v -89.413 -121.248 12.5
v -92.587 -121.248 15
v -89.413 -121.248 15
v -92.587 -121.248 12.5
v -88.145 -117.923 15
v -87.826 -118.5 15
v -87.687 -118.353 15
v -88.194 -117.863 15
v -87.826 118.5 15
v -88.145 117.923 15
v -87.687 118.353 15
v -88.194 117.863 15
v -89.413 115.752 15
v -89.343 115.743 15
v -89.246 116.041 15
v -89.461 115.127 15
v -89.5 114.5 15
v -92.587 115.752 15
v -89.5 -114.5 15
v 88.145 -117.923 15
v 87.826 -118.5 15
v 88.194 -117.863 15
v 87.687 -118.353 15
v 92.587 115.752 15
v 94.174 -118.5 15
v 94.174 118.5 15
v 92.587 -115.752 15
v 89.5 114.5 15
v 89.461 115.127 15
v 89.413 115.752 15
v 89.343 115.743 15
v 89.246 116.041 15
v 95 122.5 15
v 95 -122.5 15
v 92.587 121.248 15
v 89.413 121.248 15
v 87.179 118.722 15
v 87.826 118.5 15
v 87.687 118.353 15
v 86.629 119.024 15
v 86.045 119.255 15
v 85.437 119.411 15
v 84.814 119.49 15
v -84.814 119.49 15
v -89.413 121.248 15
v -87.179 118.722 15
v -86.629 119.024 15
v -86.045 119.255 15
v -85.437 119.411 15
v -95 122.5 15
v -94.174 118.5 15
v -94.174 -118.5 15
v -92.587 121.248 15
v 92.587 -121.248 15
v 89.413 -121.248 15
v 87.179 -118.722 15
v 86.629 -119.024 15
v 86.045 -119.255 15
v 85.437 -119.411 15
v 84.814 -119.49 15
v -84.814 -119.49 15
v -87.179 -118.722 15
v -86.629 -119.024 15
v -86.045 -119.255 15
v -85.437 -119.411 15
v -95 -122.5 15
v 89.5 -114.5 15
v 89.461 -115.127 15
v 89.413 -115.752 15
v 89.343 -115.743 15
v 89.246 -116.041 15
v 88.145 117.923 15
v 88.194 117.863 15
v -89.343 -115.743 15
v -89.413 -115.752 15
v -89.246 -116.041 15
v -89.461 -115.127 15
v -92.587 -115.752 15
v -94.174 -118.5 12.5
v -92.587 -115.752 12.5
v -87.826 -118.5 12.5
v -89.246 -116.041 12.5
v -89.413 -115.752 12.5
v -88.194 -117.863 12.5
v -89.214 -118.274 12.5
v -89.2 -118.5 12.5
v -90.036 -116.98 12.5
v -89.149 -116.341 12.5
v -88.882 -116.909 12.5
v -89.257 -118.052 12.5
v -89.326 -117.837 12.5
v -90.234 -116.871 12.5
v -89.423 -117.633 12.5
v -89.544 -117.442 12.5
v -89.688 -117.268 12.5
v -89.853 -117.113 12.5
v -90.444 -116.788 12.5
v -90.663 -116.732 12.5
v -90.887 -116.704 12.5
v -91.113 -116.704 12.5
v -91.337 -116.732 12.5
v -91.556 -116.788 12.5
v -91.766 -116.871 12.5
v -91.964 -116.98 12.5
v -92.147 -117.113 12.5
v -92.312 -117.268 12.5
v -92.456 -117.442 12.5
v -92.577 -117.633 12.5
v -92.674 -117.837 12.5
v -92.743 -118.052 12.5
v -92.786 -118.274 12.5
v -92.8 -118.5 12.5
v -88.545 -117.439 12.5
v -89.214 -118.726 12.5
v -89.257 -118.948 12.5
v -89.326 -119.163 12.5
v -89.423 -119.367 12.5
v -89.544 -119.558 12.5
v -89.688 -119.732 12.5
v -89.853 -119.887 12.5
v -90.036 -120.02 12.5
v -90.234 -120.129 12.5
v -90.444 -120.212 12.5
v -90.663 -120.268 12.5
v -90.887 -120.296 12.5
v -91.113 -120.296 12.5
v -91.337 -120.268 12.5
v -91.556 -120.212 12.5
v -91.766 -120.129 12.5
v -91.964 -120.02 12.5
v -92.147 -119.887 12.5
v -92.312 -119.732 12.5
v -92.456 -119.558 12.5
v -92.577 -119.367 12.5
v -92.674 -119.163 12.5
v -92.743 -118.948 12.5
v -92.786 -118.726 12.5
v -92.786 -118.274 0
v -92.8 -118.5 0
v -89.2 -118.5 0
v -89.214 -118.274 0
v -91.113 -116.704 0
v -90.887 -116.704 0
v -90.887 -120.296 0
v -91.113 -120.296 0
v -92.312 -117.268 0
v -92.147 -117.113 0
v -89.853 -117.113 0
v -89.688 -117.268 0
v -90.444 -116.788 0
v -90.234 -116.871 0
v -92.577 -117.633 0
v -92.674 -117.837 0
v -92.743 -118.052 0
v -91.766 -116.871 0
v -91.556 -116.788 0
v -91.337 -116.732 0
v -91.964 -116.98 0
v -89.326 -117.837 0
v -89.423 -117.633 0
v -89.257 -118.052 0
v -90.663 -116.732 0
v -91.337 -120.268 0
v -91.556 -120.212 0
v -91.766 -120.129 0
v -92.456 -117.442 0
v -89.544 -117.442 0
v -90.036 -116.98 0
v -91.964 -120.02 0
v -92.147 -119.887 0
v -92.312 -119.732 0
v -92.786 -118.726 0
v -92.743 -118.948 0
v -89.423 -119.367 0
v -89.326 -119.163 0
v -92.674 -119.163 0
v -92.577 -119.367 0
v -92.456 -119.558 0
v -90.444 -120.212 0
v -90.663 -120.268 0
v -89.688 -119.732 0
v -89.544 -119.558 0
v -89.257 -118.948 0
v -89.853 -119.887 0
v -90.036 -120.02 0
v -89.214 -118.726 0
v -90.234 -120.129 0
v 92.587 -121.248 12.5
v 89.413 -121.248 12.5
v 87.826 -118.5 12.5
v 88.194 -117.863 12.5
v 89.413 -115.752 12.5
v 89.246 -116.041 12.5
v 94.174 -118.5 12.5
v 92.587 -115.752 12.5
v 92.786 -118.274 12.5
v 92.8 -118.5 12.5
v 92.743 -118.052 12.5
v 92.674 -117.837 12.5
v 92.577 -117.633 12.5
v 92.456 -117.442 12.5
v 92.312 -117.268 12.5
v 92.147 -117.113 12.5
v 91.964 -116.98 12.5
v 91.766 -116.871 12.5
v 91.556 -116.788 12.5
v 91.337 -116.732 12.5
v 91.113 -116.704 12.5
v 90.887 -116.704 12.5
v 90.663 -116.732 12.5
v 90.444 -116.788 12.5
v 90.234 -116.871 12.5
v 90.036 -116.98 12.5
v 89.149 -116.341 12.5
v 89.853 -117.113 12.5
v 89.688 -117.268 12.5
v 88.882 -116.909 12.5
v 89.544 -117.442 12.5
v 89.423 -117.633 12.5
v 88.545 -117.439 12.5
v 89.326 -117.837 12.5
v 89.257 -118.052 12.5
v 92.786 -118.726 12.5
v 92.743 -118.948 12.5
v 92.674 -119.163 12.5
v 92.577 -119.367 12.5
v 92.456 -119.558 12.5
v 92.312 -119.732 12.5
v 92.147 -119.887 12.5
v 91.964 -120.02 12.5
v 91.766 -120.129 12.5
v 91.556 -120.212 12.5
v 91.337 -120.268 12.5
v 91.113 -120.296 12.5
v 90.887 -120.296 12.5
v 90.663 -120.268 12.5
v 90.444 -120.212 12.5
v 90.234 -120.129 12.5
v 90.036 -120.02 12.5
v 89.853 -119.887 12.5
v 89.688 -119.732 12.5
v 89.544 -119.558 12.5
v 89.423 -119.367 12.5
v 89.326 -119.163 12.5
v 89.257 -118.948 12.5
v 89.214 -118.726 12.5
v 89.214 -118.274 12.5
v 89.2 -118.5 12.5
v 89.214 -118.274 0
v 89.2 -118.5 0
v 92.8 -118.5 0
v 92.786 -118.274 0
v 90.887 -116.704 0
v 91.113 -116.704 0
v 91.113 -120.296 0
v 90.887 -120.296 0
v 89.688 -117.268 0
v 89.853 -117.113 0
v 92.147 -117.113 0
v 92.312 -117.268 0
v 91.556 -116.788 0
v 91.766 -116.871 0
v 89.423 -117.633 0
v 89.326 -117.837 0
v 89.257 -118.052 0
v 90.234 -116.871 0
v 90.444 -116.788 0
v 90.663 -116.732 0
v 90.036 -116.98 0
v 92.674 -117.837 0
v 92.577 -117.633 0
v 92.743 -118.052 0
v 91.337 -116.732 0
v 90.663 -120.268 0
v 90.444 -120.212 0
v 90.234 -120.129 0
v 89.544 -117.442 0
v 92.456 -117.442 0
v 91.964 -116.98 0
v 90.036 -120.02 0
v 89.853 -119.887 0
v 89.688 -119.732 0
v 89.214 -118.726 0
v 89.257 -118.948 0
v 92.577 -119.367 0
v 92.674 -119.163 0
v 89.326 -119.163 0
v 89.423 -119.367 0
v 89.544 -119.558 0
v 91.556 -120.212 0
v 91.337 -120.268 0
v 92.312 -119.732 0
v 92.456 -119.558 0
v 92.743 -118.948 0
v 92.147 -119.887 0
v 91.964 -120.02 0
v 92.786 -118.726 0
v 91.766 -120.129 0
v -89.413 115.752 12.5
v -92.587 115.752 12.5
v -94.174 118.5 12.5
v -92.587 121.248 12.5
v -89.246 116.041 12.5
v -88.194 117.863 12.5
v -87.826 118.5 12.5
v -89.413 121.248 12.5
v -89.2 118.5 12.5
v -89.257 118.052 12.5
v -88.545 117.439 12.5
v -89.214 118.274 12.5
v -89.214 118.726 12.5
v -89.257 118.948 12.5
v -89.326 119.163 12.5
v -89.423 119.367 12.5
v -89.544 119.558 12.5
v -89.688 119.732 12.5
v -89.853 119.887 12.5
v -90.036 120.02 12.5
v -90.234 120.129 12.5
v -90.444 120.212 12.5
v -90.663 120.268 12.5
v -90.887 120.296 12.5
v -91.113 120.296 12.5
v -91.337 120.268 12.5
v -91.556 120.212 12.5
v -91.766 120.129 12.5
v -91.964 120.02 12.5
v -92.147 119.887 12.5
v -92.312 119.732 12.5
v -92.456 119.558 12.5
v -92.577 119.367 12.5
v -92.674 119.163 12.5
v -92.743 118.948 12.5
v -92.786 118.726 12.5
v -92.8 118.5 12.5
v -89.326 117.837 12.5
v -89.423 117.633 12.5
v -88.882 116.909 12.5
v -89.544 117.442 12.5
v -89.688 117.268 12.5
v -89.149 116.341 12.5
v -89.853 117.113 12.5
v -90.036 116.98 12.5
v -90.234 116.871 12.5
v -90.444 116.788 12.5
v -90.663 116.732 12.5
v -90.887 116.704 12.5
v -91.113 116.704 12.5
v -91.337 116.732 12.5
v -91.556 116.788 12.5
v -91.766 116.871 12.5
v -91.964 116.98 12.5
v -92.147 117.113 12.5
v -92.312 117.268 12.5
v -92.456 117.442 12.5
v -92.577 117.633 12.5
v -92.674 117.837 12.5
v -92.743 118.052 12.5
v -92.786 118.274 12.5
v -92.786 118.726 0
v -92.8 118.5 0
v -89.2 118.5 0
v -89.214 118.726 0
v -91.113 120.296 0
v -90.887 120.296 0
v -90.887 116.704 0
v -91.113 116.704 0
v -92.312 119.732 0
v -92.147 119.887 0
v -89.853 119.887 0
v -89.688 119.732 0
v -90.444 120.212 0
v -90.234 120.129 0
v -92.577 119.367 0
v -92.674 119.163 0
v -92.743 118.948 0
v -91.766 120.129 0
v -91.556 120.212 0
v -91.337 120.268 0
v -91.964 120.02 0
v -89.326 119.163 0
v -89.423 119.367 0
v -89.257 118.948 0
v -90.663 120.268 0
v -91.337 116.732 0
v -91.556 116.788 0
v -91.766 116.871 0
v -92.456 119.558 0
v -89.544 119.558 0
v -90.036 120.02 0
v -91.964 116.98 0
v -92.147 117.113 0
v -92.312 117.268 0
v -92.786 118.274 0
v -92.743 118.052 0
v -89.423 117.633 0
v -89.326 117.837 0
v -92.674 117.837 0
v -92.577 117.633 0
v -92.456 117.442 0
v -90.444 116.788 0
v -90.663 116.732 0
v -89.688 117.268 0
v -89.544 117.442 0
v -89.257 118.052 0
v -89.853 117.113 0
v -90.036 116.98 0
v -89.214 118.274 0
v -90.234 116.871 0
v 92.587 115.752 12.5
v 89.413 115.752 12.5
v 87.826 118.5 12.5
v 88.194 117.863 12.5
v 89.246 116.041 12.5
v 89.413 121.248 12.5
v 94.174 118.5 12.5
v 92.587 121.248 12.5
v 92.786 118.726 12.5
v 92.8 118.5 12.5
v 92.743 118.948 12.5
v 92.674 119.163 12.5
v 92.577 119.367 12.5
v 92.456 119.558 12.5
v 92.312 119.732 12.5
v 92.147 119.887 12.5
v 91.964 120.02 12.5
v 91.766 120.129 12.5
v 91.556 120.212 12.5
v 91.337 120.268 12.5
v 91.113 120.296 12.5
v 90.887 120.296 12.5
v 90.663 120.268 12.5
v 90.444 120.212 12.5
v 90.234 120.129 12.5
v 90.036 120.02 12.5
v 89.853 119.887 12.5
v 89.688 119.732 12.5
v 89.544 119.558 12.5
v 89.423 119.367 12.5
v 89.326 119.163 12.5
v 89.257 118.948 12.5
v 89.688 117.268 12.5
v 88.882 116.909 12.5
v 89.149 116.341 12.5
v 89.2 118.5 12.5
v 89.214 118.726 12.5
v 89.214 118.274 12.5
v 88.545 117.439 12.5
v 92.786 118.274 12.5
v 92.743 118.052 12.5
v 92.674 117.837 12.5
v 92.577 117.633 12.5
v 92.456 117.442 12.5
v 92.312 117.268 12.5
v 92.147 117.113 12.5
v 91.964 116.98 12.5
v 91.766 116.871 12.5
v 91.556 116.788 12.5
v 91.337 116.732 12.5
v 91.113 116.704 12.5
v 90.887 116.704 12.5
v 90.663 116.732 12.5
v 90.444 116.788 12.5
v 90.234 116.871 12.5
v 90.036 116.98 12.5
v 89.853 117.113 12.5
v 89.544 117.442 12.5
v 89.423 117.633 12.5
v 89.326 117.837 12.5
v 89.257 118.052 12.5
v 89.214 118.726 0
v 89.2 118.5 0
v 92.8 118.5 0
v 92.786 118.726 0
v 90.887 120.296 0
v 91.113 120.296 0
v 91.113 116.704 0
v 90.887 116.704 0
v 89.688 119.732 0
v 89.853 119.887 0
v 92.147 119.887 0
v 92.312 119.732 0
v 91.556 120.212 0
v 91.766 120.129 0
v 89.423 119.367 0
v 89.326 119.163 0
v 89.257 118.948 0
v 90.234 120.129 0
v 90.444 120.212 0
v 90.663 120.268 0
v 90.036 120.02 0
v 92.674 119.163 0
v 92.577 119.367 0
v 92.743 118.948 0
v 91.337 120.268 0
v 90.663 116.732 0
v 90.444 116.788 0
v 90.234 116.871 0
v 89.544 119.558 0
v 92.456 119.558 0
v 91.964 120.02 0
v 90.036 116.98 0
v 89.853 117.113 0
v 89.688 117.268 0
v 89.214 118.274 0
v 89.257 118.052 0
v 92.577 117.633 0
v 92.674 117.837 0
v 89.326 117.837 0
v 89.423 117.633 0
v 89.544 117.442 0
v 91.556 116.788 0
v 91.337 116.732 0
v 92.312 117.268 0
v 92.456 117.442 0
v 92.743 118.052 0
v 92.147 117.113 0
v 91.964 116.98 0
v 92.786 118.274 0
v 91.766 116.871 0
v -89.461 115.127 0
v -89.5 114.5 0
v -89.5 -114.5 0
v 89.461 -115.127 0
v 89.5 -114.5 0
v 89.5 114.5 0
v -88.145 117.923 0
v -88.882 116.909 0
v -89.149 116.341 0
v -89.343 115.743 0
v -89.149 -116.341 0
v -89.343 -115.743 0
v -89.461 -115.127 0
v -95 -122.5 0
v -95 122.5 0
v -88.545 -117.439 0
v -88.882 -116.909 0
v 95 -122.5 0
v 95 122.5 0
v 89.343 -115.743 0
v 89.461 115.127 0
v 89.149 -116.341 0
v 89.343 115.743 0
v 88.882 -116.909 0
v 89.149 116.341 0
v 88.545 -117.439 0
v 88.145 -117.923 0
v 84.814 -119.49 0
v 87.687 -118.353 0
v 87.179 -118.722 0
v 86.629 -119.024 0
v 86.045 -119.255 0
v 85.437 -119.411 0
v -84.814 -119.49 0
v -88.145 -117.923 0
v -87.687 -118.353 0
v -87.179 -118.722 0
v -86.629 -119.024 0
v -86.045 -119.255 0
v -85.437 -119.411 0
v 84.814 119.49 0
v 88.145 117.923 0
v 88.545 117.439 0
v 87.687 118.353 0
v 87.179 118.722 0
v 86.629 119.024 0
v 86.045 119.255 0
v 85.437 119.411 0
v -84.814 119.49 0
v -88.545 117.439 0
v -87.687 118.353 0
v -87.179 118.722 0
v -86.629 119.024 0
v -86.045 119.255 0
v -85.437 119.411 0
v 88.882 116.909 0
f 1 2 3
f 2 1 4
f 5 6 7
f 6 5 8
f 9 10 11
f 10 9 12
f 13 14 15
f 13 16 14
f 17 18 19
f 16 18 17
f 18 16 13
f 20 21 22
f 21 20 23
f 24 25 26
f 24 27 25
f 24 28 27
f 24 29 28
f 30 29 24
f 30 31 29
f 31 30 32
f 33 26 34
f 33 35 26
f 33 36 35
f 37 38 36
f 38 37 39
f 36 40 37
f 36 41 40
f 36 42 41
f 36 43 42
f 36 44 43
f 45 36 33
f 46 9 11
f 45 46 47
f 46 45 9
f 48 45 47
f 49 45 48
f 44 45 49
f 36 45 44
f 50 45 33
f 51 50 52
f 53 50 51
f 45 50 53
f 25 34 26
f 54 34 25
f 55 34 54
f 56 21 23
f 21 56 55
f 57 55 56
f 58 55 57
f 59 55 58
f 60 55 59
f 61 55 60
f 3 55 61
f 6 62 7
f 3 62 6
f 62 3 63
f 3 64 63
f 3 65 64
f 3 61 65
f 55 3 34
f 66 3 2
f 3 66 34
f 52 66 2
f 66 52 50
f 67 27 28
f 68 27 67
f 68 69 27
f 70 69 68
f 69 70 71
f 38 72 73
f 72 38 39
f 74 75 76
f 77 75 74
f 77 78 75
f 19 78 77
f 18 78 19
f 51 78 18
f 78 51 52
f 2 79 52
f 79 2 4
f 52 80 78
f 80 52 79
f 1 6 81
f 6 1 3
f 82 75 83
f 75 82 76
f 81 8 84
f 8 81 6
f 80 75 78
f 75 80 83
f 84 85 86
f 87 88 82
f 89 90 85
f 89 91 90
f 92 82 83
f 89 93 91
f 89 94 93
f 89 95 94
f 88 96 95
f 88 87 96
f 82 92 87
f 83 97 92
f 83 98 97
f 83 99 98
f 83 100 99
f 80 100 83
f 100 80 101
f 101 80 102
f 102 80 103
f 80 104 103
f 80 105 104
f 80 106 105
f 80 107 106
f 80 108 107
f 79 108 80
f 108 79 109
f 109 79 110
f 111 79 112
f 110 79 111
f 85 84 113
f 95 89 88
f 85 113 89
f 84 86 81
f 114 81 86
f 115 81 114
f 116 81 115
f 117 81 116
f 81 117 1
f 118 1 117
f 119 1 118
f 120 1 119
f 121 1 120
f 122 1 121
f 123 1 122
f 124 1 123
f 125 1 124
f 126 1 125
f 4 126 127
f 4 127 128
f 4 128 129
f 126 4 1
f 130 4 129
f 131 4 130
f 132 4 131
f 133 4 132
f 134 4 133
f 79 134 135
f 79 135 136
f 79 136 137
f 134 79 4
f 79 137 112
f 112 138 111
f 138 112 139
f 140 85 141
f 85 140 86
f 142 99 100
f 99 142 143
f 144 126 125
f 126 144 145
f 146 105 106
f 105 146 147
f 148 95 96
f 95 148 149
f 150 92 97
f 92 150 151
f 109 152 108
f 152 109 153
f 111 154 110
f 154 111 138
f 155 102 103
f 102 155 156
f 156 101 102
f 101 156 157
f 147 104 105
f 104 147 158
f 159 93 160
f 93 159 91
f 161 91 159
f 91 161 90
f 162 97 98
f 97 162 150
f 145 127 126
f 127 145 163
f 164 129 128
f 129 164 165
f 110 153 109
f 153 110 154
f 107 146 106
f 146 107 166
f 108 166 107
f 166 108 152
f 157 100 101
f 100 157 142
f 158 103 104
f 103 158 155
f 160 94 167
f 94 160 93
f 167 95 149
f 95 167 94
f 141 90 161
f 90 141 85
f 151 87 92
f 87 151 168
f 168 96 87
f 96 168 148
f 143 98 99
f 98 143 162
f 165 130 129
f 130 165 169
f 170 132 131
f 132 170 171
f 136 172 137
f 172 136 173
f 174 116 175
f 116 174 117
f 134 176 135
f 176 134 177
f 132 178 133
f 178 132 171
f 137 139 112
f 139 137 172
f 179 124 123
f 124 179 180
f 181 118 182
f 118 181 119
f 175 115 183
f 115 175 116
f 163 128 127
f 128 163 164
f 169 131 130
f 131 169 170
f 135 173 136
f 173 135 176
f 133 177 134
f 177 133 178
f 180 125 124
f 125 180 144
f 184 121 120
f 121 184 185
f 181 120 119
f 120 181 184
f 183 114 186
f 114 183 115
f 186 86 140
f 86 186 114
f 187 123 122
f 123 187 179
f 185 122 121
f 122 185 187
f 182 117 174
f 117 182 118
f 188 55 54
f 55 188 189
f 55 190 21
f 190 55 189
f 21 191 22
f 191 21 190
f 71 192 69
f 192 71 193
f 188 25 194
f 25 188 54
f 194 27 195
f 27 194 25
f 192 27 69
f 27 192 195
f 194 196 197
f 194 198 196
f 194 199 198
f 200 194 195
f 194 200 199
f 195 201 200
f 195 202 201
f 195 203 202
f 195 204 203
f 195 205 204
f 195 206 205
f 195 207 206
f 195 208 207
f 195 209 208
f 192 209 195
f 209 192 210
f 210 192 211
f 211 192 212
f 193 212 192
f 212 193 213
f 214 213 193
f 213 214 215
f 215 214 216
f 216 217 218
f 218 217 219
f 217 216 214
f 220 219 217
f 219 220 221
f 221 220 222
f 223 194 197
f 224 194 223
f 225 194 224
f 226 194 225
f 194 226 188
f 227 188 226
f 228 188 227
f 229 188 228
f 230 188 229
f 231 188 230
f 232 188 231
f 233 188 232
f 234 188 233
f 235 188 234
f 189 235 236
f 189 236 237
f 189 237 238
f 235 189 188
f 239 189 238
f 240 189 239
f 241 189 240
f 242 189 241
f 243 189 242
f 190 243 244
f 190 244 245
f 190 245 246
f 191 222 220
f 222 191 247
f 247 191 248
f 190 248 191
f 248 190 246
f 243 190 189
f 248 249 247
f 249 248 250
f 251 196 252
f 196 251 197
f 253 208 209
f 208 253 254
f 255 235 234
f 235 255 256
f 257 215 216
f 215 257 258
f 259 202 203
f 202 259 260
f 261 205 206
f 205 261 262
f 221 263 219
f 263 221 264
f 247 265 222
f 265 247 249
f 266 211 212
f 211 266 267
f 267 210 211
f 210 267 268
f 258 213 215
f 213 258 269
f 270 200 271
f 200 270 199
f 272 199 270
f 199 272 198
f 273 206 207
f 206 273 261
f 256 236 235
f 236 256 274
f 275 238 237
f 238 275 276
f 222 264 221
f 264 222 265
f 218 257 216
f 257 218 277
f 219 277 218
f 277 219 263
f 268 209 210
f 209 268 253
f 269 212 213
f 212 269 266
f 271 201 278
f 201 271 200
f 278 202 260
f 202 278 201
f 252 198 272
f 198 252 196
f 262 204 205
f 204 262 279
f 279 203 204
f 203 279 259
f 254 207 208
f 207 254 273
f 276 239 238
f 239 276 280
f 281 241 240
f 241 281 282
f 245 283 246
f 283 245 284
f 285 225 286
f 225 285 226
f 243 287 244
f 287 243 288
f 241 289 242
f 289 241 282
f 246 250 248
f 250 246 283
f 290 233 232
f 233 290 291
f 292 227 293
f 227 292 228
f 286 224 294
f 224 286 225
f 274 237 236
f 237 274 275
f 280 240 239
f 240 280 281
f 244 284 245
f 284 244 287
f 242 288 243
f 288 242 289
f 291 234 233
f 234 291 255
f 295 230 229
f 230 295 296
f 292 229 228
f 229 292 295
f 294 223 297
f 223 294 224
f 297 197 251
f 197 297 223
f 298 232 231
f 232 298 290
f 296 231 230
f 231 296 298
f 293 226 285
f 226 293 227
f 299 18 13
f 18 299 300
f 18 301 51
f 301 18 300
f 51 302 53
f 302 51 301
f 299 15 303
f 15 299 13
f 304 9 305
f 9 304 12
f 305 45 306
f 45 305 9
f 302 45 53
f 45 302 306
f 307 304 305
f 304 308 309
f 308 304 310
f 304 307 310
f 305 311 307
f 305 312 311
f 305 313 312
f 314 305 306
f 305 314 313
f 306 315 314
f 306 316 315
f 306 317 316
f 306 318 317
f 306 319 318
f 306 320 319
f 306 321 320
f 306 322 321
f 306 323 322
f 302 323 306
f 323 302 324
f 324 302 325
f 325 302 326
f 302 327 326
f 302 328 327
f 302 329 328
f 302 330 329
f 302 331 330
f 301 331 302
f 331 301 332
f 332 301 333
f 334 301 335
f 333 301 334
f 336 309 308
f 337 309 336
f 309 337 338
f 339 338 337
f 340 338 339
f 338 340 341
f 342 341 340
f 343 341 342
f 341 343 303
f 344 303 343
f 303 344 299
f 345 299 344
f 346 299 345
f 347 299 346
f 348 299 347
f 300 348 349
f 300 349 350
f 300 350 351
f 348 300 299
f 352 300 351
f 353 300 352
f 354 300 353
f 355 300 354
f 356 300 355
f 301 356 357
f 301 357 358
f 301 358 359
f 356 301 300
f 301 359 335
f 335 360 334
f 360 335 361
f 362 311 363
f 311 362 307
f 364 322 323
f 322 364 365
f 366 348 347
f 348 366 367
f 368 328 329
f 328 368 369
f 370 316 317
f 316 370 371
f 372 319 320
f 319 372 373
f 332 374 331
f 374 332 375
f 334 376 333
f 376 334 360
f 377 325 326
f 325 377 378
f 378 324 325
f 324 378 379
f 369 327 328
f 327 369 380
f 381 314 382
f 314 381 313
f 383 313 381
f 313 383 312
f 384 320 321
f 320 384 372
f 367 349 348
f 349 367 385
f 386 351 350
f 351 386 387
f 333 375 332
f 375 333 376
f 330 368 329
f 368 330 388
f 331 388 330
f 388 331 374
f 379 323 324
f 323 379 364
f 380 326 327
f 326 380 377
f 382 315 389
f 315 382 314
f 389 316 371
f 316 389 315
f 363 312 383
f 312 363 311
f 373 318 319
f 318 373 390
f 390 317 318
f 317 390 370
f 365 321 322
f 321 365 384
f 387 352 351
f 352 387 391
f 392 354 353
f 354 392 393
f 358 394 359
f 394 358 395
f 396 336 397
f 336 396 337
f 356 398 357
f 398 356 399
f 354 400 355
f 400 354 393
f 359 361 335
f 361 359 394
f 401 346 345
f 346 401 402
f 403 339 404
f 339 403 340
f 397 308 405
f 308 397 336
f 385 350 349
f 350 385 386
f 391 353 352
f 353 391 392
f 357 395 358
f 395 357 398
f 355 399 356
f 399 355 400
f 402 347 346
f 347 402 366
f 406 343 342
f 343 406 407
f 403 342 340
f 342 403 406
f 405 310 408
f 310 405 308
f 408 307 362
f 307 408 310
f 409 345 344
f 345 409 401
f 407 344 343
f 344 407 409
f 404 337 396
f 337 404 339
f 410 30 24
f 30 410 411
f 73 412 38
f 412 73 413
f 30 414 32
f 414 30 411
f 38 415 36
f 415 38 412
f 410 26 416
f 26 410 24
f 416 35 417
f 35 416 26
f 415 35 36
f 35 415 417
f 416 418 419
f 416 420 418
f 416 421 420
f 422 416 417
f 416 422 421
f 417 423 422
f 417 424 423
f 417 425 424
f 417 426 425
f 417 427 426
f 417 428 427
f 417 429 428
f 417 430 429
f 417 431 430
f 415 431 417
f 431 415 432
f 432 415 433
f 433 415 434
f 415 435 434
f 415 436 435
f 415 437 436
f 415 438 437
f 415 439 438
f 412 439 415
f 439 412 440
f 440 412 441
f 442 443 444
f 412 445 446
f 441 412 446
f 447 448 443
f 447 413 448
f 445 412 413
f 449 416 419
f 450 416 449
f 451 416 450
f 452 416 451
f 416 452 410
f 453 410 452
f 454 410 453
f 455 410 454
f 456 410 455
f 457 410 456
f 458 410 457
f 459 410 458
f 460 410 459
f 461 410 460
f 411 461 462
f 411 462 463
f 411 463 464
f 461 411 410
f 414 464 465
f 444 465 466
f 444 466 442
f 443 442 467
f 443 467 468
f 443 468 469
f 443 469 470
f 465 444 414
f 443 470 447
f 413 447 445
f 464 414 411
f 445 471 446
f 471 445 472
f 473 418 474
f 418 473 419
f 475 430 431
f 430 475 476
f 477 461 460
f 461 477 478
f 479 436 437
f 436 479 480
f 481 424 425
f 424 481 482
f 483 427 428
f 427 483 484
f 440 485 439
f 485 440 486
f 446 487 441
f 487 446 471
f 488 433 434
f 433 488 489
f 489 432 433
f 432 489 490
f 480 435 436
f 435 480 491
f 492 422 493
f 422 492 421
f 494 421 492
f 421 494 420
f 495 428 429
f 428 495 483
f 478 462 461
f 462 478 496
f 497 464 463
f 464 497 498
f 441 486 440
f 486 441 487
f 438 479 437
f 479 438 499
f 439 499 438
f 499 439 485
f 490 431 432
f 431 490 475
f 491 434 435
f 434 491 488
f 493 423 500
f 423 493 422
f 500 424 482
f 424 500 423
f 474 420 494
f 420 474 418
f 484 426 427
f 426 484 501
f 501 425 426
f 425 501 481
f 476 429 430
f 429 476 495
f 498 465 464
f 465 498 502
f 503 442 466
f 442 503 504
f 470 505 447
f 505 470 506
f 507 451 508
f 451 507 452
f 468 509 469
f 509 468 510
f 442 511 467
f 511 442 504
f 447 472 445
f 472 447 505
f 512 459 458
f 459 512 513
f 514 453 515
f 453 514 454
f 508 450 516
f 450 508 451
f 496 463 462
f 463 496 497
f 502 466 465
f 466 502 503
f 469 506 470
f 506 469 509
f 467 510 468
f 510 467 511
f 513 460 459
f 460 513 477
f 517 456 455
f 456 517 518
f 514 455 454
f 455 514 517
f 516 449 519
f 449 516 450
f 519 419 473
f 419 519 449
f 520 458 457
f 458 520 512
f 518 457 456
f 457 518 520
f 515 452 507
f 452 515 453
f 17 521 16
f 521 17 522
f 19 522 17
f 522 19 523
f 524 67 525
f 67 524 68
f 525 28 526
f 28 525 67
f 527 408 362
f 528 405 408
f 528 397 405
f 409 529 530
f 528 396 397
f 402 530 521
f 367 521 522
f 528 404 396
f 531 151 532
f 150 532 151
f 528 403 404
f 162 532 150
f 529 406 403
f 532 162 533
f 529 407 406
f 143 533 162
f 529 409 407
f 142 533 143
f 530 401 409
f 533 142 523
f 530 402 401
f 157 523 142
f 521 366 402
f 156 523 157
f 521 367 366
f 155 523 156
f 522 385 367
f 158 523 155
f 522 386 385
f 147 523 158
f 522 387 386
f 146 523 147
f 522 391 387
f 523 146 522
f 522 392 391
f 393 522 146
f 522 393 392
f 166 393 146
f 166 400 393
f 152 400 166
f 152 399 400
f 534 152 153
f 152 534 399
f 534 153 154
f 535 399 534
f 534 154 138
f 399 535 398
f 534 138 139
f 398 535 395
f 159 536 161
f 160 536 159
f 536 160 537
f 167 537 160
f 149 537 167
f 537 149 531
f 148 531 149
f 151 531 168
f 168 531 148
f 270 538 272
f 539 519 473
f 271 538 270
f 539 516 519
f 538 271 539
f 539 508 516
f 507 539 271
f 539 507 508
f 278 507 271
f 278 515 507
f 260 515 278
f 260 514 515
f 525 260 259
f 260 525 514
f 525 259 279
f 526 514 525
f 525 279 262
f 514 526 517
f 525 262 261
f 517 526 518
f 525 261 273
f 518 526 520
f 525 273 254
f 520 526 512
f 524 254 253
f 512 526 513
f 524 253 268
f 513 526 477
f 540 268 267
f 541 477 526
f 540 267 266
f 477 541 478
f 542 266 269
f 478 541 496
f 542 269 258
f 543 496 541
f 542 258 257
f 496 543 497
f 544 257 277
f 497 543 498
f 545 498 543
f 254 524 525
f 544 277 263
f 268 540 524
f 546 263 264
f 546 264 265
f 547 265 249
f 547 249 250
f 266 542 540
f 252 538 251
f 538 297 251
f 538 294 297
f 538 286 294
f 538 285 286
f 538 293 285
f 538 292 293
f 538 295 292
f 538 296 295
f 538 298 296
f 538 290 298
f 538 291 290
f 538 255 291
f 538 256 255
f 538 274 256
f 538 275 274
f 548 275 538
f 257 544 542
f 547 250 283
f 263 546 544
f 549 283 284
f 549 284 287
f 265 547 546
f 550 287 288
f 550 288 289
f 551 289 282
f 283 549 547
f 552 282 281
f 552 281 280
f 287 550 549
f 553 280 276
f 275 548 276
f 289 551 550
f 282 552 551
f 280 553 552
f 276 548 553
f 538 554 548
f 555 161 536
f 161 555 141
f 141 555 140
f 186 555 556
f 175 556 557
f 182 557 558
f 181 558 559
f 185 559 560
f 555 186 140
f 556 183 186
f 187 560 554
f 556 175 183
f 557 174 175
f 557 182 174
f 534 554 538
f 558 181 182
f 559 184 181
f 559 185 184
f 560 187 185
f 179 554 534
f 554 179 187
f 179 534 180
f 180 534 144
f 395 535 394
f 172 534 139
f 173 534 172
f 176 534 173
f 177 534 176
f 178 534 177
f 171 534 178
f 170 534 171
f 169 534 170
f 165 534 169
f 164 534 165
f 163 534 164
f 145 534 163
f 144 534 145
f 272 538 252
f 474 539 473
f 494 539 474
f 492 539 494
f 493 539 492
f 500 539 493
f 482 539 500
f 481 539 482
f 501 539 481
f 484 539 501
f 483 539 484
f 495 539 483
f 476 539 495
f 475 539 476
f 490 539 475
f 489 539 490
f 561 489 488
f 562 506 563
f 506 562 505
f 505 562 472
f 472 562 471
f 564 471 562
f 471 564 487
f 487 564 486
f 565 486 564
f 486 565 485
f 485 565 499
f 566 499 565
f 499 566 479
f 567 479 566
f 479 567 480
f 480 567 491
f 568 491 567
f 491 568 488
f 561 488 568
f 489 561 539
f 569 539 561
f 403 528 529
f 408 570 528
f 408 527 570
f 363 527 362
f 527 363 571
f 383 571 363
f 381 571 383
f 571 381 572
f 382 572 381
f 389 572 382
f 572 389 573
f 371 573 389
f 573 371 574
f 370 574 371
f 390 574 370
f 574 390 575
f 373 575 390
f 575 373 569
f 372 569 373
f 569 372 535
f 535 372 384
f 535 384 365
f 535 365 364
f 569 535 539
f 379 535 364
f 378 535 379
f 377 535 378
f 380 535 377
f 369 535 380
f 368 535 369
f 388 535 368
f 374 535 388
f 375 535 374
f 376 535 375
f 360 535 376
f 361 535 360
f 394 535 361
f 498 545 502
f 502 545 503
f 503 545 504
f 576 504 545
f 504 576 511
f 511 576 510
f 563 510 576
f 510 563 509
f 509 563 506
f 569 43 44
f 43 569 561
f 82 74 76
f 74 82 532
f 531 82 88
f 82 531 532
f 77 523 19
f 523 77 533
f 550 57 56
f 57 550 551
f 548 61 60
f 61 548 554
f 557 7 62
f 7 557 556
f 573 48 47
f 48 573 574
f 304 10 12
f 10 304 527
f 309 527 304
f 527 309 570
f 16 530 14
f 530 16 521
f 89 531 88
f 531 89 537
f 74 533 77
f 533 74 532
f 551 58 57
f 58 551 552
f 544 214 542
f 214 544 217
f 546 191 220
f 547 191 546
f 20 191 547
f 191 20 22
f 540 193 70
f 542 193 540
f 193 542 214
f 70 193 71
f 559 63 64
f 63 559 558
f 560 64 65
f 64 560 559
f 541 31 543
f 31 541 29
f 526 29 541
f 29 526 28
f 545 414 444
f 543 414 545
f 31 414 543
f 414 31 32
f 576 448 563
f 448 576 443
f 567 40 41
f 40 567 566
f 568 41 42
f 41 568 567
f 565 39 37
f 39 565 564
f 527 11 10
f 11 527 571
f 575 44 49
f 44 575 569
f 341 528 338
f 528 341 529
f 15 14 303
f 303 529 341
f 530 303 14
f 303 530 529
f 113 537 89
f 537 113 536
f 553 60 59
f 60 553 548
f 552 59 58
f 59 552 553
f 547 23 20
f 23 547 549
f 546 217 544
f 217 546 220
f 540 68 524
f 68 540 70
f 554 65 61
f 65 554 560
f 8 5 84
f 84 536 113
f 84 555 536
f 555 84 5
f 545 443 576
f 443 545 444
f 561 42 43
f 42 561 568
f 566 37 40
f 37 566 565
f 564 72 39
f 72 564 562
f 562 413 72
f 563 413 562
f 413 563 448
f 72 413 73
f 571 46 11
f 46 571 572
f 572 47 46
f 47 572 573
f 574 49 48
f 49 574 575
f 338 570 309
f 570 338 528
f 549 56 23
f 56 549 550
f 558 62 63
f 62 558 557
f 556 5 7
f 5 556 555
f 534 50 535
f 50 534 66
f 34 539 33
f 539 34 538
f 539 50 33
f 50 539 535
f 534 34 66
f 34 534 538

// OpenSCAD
$fn = 50;


difference() {
	union() {
		translate(v = [-95.0000000000, -122.5000000000, 0]) {
			cube(size = [190, 245, 15]);
		}
	}
	union() {
		translate(v = [-91.0000000000, -118.5000000000, -3]) {
			rotate(a = [0, 180, 0]) {
				difference() {
					union() {
						translate(v = [0, 0, -18.0000000000]) {
							rotate(a = [0, 0, 0]) {
								difference() {
									union() {
										#linear_extrude(height = 2.5000000000) {
											polygon(points = [[3.1735000000, 0.0000000000], [1.5867500000, 2.7483316189], [-1.5867500000, 2.7483316189], [-3.1735000000, 0.0000000000], [-1.5867500000, -2.7483316189], [1.5867500000, -2.7483316189]]);
										}
									}
									union();
								}
							}
						}
						translate(v = [0, 0, -18.0000000000]) {
							rotate(a = [0, 0, 0]) {
								difference() {
									union() {
										#linear_extrude(height = 2.5000000000) {
											polygon(points = [[3.1735000000, 0.0000000000], [1.5867500000, 2.7483316189], [-1.5867500000, 2.7483316189], [-3.1735000000, 0.0000000000], [-1.5867500000, -2.7483316189], [1.5867500000, -2.7483316189]]);
										}
									}
									union();
								}
							}
						}
						translate(v = [0, 0, -18.0000000000]) {
							rotate(a = [0, 0, 0]) {
								difference() {
									union() {
										#linear_extrude(height = 2.5000000000) {
											polygon(points = [[3.1735000000, 0.0000000000], [1.5867500000, 2.7483316189], [-1.5867500000, 2.7483316189], [-3.1735000000, 0.0000000000], [-1.5867500000, -2.7483316189], [1.5867500000, -2.7483316189]]);
										}
									}
									union();
								}
							}
						}
						#translate(v = [0, 0, -1.7000000000]) {
							cylinder(h = 1.7000000000, r1 = 1.5000000000, r2 = 2.4000000000);
						}
						#translate(v = [0, 0, -18.0000000000]) {
							cylinder(h = 18, r = 1.5000000000);
						}
						#translate(v = [0, 0, -18.0000000000]) {
							cylinder(h = 18, r = 1.8000000000);
						}
						#translate(v = [0, 0, -18.0000000000]) {
							cylinder(h = 18, r = 1.5000000000);
						}
					}
					union();
				}
			}
		}
		translate(v = [91.0000000000, -118.5000000000, -3]) {
			rotate(a = [0, 180, 0]) {
				difference() {
					union() {
						translate(v = [0, 0, -18.0000000000]) {
							rotate(a = [0, 0, 0]) {
								difference() {
									union() {
										#linear_extrude(height = 2.5000000000) {
											polygon(points = [[3.1735000000, 0.0000000000], [1.5867500000, 2.7483316189], [-1.5867500000, 2.7483316189], [-3.1735000000, 0.0000000000], [-1.5867500000, -2.7483316189], [1.5867500000, -2.7483316189]]);
										}
									}
									union();
								}
							}
						}
						translate(v = [0, 0, -18.0000000000]) {
							rotate(a = [0, 0, 0]) {
								difference() {
									union() {
										#linear_extrude(height = 2.5000000000) {
											polygon(points = [[3.1735000000, 0.0000000000], [1.5867500000, 2.7483316189], [-1.5867500000, 2.7483316189], [-3.1735000000, 0.0000000000], [-1.5867500000, -2.7483316189], [1.5867500000, -2.7483316189]]);
										}
									}
									union();
								}
							}
						}
						translate(v = [0, 0, -18.0000000000]) {
							rotate(a = [0, 0, 0]) {
								difference() {
									union() {
										#linear_extrude(height = 2.5000000000) {
											polygon(points = [[3.1735000000, 0.0000000000], [1.5867500000, 2.7483316189], [-1.5867500000, 2.7483316189], [-3.1735000000, 0.0000000000], [-1.5867500000, -2.7483316189], [1.5867500000, -2.7483316189]]);
										}
									}
									union();
								}
							}
						}
						#translate(v = [0, 0, -1.7000000000]) {
							cylinder(h = 1.7000000000, r1 = 1.5000000000, r2 = 2.4000000000);
						}
						#translate(v = [0, 0, -18.0000000000]) {
							cylinder(h = 18, r = 1.5000000000);
						}
						#translate(v = [0, 0, -18.0000000000]) {
							cylinder(h = 18, r = 1.8000000000);
						}
						#translate(v = [0, 0, -18.0000000000]) {
							cylinder(h = 18, r = 1.5000000000);
						}
					}
					union();
				}
			}
		}
		translate(v = [-91.0000000000, 118.5000000000, -3]) {
			rotate(a = [0, 180, 0]) {
				difference() {
					union() {
						translate(v = [0, 0, -18.0000000000]) {
							rotate(a = [0, 0, 0]) {
								difference() {
									union() {
										#linear_extrude(height = 2.5000000000) {
											polygon(points = [[3.1735000000, 0.0000000000], [1.5867500000, 2.7483316189], [-1.5867500000, 2.7483316189], [-3.1735000000, 0.0000000000], [-1.5867500000, -2.7483316189], [1.5867500000, -2.7483316189]]);
										}
									}
									union();
								}
							}
						}
						translate(v = [0, 0, -18.0000000000]) {
							rotate(a = [0, 0, 0]) {
								difference() {
									union() {
										#linear_extrude(height = 2.5000000000) {
											polygon(points = [[3.1735000000, 0.0000000000], [1.5867500000, 2.7483316189], [-1.5867500000, 2.7483316189], [-3.1735000000, 0.0000000000], [-1.5867500000, -2.7483316189], [1.5867500000, -2.7483316189]]);
										}
									}
									union();
								}
							}
						}
						translate(v = [0, 0, -18.0000000000]) {
							rotate(a = [0, 0, 0]) {
								difference() {
									union() {
										#linear_extrude(height = 2.5000000000) {
											polygon(points = [[3.1735000000, 0.0000000000], [1.5867500000, 2.7483316189], [-1.5867500000, 2.7483316189], [-3.1735000000, 0.0000000000], [-1.5867500000, -2.7483316189], [1.5867500000, -2.7483316189]]);
										}
									}
									union();
								}
							}
						}
						#translate(v = [0, 0, -1.7000000000]) {
							cylinder(h = 1.7000000000, r1 = 1.5000000000, r2 = 2.4000000000);
						}
						#translate(v = [0, 0, -18.0000000000]) {
							cylinder(h = 18, r = 1.5000000000);
						}
						#translate(v = [0, 0, -18.0000000000]) {
							cylinder(h = 18, r = 1.8000000000);
						}
						#translate(v = [0, 0, -18.0000000000]) {
							cylinder(h = 18, r = 1.5000000000);
						}
					}
					union();
				}
			}
		}
		translate(v = [91.0000000000, 118.5000000000, -3]) {
			rotate(a = [0, 180, 0]) {
				difference() {
					union() {
						translate(v = [0, 0, -18.0000000000]) {
							rotate(a = [0, 0, 0]) {
								difference() {
									union() {
										#linear_extrude(height = 2.5000000000) {
											polygon(points = [[3.1735000000, 0.0000000000], [1.5867500000, 2.7483316189], [-1.5867500000, 2.7483316189], [-3.1735000000, 0.0000000000], [-1.5867500000, -2.7483316189], [1.5867500000, -2.7483316189]]);
										}
									}
									union();
								}
							}
						}
						translate(v = [0, 0, -18.0000000000]) {
							rotate(a = [0, 0, 0]) {
								difference() {
									union() {
										#linear_extrude(height = 2.5000000000) {
											polygon(points = [[3.1735000000, 0.0000000000], [1.5867500000, 2.7483316189], [-1.5867500000, 2.7483316189], [-3.1735000000, 0.0000000000], [-1.5867500000, -2.7483316189], [1.5867500000, -2.7483316189]]);
										}
									}
									union();
								}
							}
						}
						translate(v = [0, 0, -18.0000000000]) {
							rotate(a = [0, 0, 0]) {
								difference() {
									union() {
										#linear_extrude(height = 2.5000000000) {
											polygon(points = [[3.1735000000, 0.0000000000], [1.5867500000, 2.7483316189], [-1.5867500000, 2.7483316189], [-3.1735000000, 0.0000000000], [-1.5867500000, -2.7483316189], [1.5867500000, -2.7483316189]]);
										}
									}
									union();
								}
							}
						}
						#translate(v = [0, 0, -1.7000000000]) {
							cylinder(h = 1.7000000000, r1 = 1.5000000000, r2 = 2.4000000000);
						}
						#translate(v = [0, 0, -18.0000000000]) {
							cylinder(h = 18, r = 1.5000000000);
						}
						#translate(v = [0, 0, -18.0000000000]) {
							cylinder(h = 18, r = 1.8000000000);
						}
						#translate(v = [0, 0, -18.0000000000]) {
							cylinder(h = 18, r = 1.5000000000);
						}
					}
					union();
				}
			}
		}
		#hull() {
			translate(v = [-84.5000000000, 114.5000000000, 0]) {
				cylinder(h = 15, r = 5);
			}
			translate(v = [84.5000000000, 114.5000000000, 0]) {
				cylinder(h = 15, r = 5);
			}
			translate(v = [-84.5000000000, -114.5000000000, 0]) {
				cylinder(h = 15, r = 5);
			}
			translate(v = [84.5000000000, -114.5000000000, 0]) {
				cylinder(h = 15, r = 5);
			}
		}
	}
}
